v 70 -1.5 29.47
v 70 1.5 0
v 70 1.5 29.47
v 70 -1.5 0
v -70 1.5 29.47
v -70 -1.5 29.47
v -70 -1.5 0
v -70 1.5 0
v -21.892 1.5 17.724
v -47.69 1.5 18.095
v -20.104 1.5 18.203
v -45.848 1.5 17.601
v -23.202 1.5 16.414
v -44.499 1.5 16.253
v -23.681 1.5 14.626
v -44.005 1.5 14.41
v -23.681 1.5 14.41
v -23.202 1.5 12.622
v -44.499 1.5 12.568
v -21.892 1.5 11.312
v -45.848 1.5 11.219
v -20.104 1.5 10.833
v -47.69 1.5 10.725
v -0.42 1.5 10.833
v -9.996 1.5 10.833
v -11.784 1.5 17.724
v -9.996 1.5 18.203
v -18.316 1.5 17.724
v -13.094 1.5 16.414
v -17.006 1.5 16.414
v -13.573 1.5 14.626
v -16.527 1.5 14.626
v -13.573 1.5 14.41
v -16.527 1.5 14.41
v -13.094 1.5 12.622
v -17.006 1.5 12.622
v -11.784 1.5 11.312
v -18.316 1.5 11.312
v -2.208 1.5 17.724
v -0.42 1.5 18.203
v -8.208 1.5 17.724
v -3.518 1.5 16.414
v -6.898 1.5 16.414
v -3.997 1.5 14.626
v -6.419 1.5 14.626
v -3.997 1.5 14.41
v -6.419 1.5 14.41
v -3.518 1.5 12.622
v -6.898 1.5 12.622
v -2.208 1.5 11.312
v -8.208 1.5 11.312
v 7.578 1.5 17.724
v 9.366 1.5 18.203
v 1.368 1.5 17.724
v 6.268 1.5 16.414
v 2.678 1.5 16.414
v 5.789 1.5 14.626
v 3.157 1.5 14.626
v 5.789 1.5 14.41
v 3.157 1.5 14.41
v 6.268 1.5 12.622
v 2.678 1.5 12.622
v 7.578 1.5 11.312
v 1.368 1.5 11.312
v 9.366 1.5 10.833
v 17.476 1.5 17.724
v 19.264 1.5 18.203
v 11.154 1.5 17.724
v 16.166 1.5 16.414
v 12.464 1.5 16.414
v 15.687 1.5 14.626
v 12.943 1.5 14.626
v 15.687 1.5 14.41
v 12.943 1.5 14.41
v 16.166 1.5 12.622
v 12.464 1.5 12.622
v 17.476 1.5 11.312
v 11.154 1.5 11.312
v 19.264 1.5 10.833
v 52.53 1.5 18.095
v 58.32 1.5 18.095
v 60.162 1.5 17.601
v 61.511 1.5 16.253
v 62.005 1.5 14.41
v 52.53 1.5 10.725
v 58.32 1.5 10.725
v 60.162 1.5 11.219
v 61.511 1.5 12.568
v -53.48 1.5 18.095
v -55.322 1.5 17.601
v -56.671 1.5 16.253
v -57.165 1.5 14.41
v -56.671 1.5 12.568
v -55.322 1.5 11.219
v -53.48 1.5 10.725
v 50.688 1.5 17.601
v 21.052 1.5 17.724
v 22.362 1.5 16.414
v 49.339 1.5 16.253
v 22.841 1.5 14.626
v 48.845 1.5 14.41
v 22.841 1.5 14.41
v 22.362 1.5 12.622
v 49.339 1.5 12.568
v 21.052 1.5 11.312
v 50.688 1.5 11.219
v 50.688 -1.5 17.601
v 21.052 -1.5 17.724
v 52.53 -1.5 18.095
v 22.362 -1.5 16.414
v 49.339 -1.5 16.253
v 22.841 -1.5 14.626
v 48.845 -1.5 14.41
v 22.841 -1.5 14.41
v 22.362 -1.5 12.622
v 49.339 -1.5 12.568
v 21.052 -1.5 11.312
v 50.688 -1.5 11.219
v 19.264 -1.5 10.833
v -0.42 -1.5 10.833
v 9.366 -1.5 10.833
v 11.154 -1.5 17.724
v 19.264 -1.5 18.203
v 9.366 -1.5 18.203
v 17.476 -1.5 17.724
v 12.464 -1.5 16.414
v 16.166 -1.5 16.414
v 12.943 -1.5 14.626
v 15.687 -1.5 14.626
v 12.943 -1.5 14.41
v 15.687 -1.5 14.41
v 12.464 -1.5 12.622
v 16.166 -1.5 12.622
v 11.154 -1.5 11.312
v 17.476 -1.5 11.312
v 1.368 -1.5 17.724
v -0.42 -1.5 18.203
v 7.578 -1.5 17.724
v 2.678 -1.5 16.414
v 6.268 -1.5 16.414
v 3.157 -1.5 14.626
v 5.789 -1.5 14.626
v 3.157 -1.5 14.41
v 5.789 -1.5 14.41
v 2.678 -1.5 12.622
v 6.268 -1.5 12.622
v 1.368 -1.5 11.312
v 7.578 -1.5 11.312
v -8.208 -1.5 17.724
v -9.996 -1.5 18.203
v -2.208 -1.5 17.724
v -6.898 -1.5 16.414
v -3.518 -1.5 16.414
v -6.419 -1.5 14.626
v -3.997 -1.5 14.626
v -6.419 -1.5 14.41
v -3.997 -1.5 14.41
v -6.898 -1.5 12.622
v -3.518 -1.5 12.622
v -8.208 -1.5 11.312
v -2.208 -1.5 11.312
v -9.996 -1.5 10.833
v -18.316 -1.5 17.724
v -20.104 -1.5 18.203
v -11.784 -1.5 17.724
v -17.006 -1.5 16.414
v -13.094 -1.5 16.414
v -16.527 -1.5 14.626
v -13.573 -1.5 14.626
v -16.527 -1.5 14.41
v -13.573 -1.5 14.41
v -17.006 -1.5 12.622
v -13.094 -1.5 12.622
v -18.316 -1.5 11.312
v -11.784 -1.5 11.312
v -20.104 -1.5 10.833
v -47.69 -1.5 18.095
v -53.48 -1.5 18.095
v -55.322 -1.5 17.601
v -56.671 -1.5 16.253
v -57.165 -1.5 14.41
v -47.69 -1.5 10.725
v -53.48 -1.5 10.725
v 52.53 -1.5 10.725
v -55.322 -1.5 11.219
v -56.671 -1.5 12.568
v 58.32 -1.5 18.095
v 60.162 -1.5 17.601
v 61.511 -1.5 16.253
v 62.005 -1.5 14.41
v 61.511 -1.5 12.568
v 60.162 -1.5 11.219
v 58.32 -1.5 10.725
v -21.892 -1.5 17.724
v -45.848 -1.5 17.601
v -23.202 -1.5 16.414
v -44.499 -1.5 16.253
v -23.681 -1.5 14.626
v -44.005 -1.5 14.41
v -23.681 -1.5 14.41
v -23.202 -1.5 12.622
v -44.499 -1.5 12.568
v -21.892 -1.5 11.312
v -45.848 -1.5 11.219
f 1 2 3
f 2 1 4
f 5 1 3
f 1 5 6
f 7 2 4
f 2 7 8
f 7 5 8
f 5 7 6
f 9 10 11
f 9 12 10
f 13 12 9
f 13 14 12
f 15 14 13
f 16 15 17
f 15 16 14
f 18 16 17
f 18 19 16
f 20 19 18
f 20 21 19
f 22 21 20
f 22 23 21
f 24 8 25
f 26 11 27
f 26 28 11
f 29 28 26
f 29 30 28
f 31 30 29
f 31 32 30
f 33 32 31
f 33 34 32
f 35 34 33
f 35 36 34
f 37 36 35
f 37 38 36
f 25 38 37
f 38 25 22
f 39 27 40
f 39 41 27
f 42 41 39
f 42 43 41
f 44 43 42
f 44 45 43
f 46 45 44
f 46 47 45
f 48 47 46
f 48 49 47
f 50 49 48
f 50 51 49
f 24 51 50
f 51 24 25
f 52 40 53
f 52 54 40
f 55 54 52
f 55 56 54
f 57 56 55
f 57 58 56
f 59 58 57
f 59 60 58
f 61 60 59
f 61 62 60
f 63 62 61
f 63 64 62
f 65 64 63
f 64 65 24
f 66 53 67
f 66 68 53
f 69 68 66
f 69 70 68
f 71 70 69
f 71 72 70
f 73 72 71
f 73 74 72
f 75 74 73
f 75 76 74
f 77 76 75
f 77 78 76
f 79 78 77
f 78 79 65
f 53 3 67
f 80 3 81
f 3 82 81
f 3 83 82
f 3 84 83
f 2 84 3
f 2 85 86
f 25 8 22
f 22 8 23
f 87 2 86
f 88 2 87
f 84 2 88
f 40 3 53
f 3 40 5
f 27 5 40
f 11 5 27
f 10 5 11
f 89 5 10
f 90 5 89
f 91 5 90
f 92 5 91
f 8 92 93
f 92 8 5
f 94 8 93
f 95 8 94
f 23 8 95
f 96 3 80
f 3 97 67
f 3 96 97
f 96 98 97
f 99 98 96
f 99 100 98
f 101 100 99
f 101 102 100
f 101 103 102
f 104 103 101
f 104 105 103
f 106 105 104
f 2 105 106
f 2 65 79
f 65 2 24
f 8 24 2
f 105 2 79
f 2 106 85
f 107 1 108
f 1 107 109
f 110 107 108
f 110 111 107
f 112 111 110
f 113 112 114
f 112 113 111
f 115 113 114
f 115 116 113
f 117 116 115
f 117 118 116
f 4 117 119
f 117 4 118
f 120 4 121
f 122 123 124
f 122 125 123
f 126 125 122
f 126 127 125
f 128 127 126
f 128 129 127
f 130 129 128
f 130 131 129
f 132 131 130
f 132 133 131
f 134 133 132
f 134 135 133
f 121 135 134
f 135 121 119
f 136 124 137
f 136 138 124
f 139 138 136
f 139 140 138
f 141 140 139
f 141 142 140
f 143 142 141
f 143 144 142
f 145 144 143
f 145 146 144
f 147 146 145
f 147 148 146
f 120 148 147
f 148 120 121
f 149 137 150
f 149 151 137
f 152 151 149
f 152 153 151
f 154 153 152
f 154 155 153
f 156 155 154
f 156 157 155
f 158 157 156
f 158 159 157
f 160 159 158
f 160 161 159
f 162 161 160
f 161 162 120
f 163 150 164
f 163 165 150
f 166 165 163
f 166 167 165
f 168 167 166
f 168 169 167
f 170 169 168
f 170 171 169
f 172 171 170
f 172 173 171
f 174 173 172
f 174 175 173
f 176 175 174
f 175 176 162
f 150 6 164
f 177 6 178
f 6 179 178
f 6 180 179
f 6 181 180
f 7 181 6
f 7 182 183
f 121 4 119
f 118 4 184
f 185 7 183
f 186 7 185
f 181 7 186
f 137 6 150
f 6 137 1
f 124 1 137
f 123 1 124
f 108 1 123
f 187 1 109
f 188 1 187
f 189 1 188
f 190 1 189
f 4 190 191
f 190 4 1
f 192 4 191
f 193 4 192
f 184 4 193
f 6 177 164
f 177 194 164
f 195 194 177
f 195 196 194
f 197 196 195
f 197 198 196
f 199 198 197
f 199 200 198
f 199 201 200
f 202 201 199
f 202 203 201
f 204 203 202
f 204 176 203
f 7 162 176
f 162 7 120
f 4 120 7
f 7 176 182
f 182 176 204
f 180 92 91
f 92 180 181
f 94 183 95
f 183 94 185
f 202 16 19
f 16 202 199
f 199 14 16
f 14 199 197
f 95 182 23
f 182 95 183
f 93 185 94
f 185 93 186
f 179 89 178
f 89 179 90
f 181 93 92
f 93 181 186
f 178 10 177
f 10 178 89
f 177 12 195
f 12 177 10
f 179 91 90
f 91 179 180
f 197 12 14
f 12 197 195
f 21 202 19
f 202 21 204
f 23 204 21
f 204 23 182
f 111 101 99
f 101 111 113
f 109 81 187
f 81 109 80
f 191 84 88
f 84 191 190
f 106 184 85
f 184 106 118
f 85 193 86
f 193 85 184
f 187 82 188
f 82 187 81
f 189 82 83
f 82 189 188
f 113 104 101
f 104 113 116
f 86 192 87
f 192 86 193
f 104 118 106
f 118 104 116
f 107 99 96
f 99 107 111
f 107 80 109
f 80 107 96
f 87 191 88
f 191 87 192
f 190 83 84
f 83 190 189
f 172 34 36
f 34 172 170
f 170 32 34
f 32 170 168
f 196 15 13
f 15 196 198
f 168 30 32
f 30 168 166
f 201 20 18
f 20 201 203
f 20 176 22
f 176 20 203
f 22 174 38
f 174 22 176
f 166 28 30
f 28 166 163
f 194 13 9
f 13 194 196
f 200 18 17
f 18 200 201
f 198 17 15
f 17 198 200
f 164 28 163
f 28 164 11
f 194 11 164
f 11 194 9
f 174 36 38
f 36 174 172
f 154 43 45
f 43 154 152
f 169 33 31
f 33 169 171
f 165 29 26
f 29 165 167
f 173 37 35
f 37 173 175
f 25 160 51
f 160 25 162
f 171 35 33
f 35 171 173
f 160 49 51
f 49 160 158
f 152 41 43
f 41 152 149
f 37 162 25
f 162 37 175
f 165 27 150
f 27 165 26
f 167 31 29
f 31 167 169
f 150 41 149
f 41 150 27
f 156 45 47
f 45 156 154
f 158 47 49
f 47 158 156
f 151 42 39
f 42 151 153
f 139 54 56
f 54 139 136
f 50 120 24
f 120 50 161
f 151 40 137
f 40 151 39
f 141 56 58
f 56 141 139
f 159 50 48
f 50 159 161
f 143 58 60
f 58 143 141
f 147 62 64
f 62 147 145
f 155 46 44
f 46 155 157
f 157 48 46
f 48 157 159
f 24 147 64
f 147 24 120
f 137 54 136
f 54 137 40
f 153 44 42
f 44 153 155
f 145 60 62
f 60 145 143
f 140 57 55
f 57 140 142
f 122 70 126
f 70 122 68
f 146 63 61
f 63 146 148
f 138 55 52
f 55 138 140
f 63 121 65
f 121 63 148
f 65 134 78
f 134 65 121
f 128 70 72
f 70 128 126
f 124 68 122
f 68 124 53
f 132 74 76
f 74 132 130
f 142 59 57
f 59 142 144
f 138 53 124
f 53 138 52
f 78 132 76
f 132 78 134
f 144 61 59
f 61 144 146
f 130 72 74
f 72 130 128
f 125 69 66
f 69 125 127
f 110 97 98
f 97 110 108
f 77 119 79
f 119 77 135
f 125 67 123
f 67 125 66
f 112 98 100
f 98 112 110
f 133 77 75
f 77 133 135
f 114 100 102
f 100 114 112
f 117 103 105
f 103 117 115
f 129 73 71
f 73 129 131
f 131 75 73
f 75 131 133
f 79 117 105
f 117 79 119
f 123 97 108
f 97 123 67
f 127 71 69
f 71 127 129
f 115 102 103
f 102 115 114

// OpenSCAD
/* doodle-meta {"version":1,"parameters":{"plate_width":{"label":"Overall width","description":"Changes the body width","unit":"mm","feature":"body_width"},"plate_height":{"label":"Overall height","description":"Changes the body height","unit":"mm","feature":"body_height"},"plate_thickness":{"label":"Plate thickness","description":"Changes the plate thickness","unit":"mm","feature":"body_thickness"}},"features":{"body_width":{"kind":"dimension","axis":"x","label":"Overall width"},"body_height":{"kind":"dimension","axis":"z","label":"Overall height"},"body_thickness":{"kind":"dimension","axis":"y","label":"Plate thickness"}}} */

// Top-level editable parameters
plate_width = 140.0;
plate_height = 29.47;
plate_thickness = 3.0;

// Derived constants (not editable)
eps = 0.01;

// Helper module for a horizontal slot (stadium shape) in XZ plane, extruded along Y
module slot_cutter(w, h) {
    // w = width along X, h = height along Z
    // Stadium: rectangle with semicircular ends along X
    r = h / 2;
    // Build in XY plane then rotate to XZ, extrude along Y
    // Actually, build directly: use hull of two circles in XZ, extrude along Y
    // We'll create the 2D profile in XY (local), then rotate([90,0,0]) to put it in XZ,
    // and extrude along local Z which becomes global Y after rotation.
    // To avoid center issues, we extrude from -eps to plate_thickness+eps in local Z
    // after rotation. Simpler: build the profile in XZ directly using rotate_extrude? No.
    // Best approach: create 2D shape in XY, linear_extrude along Z, then rotate([90,0,0]).
    // The extrusion height must span the full plate thickness in Y after rotation.
    // After rotate([90,0,0]), local Z -> global -Y. So we need extrusion from 
    // -(plate_thickness/2 + eps) to +(plate_thickness/2 + eps) in local Z, centered.
    // Using center=true should work if the profile is centered at origin.
    linear_extrude(height = plate_thickness + 2*eps, center = true) {
        hull() {
            circle(r = r);
            translate([w - h, 0]) circle(r = r);
        }
    }
}

// Helper module for a vertical vent hole (stadium shape) in XZ plane, extruded along Y
module vent_cutter(w, h) {
    // w = width along X, h = height along Z
    // Stadium: rectangle with semicircular ends along Z (vertical)
    r = w / 2;
    linear_extrude(height = plate_thickness + 2*eps, center = true) {
        hull() {
            circle(r = r);
            translate([0, h - w]) circle(r = r);
        }
    }
}

// Main design
difference() {
    // Base plate: centered in X, Y from -thickness/2 to +thickness/2, Z from 0 to height
    translate([0, 0, plate_height/2])
    cube([plate_width, plate_thickness, plate_height], center = true);

    // Left End Slot (feat_1)
    // Center view normalized: [0.118, 0.511]
    // X_center = (0.118 - 0.5) * plate_width = -53.48
    // Z_center = (0.5 - 0.511) * plate_height + plate_height/2 = 14.41
    // Slot Width (X) = 13.16, Slot Height (Z) = 7.37
    translate([-53.48, 0, 14.41])
    rotate([90, 0, 0])
    slot_cutter(13.16, 7.37);

    // Right End Slot (feat_2)
    // Center view normalized: [0.8752, 0.511]
    // X_center = (0.8752 - 0.5) * 140 = 52.53
    // Z_center = 14.41
    translate([52.53, 0, 14.41])
    rotate([90, 0, 0])
    slot_cutter(13.16, 7.37);

    // Vent Hole 1 (feat_3)
    // Center view normalized: [0.3564, 0.511]
    // X_center = (0.3564 - 0.5) * 140 = -20.104
    // Z_center = 14.41
    // Width (X) = 7.154, Height (Z) = 7.37
    translate([-20.104, 0, 14.41])
    rotate([90, 0, 0])
    vent_cutter(7.154, 7.37);

    // Vent Hole 2 (feat_4)
    // Center view normalized: [0.4286, 0.511]
    // X_center = (0.4286 - 0.5) * 140 = -9.996
    translate([-9.996, 0, 14.41])
    rotate([90, 0, 0])
    vent_cutter(7.154, 7.37);

    // Vent Hole 3 (feat_5)
    // Center view normalized: [0.497, 0.511]
    // X_center = (0.497 - 0.5) * 140 = -0.42
    translate([-0.42, 0, 14.41])
    rotate([90, 0, 0])
    vent_cutter(7.154, 7.37);

    // Vent Hole 4 (feat_6)
    // Center view normalized: [0.5669, 0.511]
    // X_center = (0.5669 - 0.5) * 140 = 9.366
    translate([9.366, 0, 14.41])
    rotate([90, 0, 0])
    vent_cutter(7.154, 7.37);

    // Vent Hole 5 (feat_7)
    // Center view normalized: [0.6376, 0.511]
    // X_center = (0.6376 - 0.5) * 140 = 19.264
    translate([19.264, 0, 14.41])
    rotate([90, 0, 0])
    vent_cutter(7.154, 7.37);
}
